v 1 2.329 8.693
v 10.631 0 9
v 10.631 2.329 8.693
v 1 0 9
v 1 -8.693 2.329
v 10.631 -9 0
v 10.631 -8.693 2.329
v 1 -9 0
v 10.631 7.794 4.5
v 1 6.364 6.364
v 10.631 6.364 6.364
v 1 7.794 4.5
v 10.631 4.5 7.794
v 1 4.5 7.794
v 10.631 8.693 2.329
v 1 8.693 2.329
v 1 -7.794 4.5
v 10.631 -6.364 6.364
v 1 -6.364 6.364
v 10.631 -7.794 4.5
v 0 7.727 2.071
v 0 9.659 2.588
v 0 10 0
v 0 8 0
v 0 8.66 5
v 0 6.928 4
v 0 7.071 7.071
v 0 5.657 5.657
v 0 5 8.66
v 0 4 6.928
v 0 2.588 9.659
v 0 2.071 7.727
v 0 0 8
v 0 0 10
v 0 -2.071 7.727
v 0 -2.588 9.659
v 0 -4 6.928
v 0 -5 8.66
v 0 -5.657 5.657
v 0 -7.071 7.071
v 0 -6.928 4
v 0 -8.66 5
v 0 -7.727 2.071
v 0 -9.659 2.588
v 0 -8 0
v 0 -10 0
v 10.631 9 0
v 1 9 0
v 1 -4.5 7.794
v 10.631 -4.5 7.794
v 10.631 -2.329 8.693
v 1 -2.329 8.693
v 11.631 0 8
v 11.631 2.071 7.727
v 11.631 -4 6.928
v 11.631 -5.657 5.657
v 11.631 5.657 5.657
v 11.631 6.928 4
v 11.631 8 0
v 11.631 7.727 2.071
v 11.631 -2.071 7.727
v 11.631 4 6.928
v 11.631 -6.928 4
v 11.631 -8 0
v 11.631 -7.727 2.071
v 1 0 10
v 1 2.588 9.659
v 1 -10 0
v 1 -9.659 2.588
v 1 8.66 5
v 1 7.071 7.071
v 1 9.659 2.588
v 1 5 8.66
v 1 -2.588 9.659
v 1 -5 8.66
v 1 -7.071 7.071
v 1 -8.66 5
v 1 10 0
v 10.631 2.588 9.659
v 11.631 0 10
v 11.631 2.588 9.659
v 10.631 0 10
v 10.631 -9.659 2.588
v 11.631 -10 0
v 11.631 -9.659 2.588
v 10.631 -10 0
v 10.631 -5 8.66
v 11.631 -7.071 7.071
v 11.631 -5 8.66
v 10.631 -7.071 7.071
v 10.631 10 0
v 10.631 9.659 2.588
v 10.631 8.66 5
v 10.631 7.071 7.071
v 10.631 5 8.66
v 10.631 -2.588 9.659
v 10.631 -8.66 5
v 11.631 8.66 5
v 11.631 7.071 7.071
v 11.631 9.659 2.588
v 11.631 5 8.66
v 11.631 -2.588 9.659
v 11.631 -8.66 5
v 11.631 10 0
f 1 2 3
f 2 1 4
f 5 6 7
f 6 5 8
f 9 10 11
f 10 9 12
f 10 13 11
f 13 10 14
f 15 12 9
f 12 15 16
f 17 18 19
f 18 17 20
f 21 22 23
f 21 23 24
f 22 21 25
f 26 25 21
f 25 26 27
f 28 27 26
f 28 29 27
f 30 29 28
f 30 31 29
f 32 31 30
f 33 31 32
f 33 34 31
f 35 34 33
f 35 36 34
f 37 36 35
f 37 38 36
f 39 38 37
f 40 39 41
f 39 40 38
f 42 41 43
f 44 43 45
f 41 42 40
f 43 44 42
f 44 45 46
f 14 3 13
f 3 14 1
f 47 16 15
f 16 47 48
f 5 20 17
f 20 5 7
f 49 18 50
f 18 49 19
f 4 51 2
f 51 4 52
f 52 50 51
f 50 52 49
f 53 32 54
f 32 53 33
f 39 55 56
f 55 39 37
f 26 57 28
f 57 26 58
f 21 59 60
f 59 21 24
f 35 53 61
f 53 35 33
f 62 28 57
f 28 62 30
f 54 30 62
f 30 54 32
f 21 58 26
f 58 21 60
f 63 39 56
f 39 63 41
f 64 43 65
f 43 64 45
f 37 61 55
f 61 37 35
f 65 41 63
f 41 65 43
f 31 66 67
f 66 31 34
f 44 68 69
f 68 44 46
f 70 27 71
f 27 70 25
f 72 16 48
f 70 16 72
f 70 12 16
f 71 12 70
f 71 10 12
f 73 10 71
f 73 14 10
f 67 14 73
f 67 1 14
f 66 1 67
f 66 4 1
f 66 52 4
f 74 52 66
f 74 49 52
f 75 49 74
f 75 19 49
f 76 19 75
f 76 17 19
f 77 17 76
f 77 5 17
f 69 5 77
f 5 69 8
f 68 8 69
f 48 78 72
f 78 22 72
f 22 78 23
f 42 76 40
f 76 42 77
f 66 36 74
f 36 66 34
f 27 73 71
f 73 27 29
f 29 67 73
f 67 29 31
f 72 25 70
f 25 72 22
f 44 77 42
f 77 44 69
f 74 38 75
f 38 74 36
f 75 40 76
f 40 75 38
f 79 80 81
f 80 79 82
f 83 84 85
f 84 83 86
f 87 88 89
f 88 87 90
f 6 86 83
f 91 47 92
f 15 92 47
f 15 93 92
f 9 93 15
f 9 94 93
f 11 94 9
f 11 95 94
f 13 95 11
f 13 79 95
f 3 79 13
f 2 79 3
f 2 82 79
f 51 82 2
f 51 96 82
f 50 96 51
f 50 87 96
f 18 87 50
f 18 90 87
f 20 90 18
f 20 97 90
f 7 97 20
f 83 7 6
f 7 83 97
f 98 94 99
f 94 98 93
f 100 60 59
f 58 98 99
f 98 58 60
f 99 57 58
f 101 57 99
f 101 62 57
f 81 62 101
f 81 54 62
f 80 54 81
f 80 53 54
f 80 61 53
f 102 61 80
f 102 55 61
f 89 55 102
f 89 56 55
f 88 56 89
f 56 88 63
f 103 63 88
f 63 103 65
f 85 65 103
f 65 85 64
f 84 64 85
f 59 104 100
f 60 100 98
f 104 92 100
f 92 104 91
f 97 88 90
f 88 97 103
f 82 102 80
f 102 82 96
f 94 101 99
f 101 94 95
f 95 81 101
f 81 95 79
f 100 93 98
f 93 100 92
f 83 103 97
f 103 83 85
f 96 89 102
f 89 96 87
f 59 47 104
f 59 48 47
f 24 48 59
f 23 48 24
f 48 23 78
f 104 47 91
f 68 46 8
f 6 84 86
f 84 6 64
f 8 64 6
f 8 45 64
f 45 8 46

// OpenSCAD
// file: ../build_environments.scad
// build_environments.scad: modules to build level sections
//

module pool(diameter=10.0, wall_height=2.0, step_width=3.0, connections=[])
{
    difference() {
        union() {
        difference() {
            cylinder(h=0.5,r1=diameter+step_width,r2=diameter+step_width,$fn=48);
            translate([0,0,-0.1])
                cylinder(h=0.7,r1=diameter,r2=diameter,$fn=48);
        }
        difference() {
            cylinder(h=wall_height,r1=diameter+step_width+1.0,r2=diameter+step_width+1.0,$fn=48);
            translate([0,0,-0.1])
                cylinder(h=wall_height+0.2,r1=diameter+step_width,r2=diameter+step_width,$fn=48);
        }
        }
    
        for (c = connections)
        {
            rotate([0,90,0]) {
                angle = atan2(c[1],c[0]);
                rotate([-angle,0,0]) {
                    cylinder(h=diameter+5.0,r1=c[2],r2=c[2],$fn=48);
                }
            }
        }
    }
}

module straight(length=10.0, width=2.0, dy1=0.0, dy2=0.0, dz=0.0)
{
    dims = [0, 0, 0, 0, 0, (dz/length)];
    matrix = [
        [ 1, dims[0], dims[1], 0 ],
        [ dims[2], 1, dims[4], 0 ],
        [ dims[5], dims[3], 1, 0 ],
        [ 0, 0, 0, 1 ]
    ];
    multmatrix(matrix)
    difference() {
        translate([dy1,0,0])
        union() {
            rotate([0,90,0]) {
                difference() {
                    cylinder(h=(length-dy1-dy2),r1=width+1.0,r2=width+1.0,$fn=24);
                    translate([0,0,-0.1])
                        cylinder(h=(length-dy1-dy2+0.2),r1=width,r2=width,$fn=24);
                }
                difference() {
                    cylinder(h=1.0,r1=width+2.0,r2=width+2.0,$fn=24);
                    translate([0,0,-0.1])
                        cylinder(h=1.2,r1=width,r2=width,$fn=24);
                }
                translate([0,0,(length-dy1-dy2)-1.0]) {
                    difference() {
                        cylinder(h=1.0,r1=width+2.0,r2=width+2.0,$fn=24);
                        translate([0,0,-0.1])
                            cylinder(h=1.2,r1=width,r2=width,$fn=24);
                    }
                }
            }
        }
        translate([0,0,-(2*width+4.0)/2])
            cube([3*length,3*length,2*width+4.0],center=true);
    }
}

module curve(p0=[0,0], center=[0,0], dir=1, angle=0.0, width=2.0)
{
    radius = sqrt((p0[0]-center[0])*(p0[0]-center[0]) + (p0[1]-center[1])*(p0[1]-center[1]));
    if (dir == 0) {
        difference() {
            rotate([0,0,-90])
            difference() {
                rotate_extrude(angle = angle, convexity = 10, $fn=32)
                    translate([radius, 0, 0])
                        circle(r = width+1.0,$fn=24);
                rotate([0,0,-1.0])
                    rotate_extrude(angle = angle+2.0, convexity = 10, $fn=32)
                        translate([radius, 0, 0])
                            circle(r = width,$fn=24);
            }
            translate([0,0,-(2*width+4.0)/2])
                cube([5*radius,5*radius,2*width+4.0],center=true);
        }
    }
    else {
        difference() {
            rotate([0,0,90])
            difference() {
                rotate_extrude(angle = -angle, convexity = 10, $fn=32)
                    translate([radius, 0, 0])
                        circle(r = width+1.0,$fn=24);
                rotate([0,0,1.0])
                    rotate_extrude(angle = -angle-2.0, convexity = 10, $fn=32)
                        translate([radius, 0, 0])
                            circle(r = width,$fn=24);
            }
            translate([0,0,-(2*width+4.0)/2])
                cube([5*radius,5*radius,2*width+4.0],center=true);
        }
    }

}

// test pool
//pool(diameter=12.0000, wall_height=3.0000, step_width=3.0000, connections=[[0.0000,-26.0000,2.0000], [23.6074,0.0000,2.0000]]);

// test straight, slope
//straight(length=26.0000, width=2.0000, dy1=11.8322, dy2=6.7082, dz=0.0000);
//straight(length=29.1549, width=12.0000, dy1=0.0000, dy2=0.0000, dz=-15.0000);

// test curve
//curve(p0=[23.6074, 0.0000], center=[23.6074, 5.0000], dir=0, angle=60.1011, width=2.0000);
//curve(p0=[33.6426, 12.4219], center=[37.9771, 9.9295], dir=1, angle=120.4627, width=2.0000);
// main file
use <../build_environments.scad>;
straight(length=11.6314, width=8.0000, dy1=0.0000, dy2=0.0000, dz=0.0000);
